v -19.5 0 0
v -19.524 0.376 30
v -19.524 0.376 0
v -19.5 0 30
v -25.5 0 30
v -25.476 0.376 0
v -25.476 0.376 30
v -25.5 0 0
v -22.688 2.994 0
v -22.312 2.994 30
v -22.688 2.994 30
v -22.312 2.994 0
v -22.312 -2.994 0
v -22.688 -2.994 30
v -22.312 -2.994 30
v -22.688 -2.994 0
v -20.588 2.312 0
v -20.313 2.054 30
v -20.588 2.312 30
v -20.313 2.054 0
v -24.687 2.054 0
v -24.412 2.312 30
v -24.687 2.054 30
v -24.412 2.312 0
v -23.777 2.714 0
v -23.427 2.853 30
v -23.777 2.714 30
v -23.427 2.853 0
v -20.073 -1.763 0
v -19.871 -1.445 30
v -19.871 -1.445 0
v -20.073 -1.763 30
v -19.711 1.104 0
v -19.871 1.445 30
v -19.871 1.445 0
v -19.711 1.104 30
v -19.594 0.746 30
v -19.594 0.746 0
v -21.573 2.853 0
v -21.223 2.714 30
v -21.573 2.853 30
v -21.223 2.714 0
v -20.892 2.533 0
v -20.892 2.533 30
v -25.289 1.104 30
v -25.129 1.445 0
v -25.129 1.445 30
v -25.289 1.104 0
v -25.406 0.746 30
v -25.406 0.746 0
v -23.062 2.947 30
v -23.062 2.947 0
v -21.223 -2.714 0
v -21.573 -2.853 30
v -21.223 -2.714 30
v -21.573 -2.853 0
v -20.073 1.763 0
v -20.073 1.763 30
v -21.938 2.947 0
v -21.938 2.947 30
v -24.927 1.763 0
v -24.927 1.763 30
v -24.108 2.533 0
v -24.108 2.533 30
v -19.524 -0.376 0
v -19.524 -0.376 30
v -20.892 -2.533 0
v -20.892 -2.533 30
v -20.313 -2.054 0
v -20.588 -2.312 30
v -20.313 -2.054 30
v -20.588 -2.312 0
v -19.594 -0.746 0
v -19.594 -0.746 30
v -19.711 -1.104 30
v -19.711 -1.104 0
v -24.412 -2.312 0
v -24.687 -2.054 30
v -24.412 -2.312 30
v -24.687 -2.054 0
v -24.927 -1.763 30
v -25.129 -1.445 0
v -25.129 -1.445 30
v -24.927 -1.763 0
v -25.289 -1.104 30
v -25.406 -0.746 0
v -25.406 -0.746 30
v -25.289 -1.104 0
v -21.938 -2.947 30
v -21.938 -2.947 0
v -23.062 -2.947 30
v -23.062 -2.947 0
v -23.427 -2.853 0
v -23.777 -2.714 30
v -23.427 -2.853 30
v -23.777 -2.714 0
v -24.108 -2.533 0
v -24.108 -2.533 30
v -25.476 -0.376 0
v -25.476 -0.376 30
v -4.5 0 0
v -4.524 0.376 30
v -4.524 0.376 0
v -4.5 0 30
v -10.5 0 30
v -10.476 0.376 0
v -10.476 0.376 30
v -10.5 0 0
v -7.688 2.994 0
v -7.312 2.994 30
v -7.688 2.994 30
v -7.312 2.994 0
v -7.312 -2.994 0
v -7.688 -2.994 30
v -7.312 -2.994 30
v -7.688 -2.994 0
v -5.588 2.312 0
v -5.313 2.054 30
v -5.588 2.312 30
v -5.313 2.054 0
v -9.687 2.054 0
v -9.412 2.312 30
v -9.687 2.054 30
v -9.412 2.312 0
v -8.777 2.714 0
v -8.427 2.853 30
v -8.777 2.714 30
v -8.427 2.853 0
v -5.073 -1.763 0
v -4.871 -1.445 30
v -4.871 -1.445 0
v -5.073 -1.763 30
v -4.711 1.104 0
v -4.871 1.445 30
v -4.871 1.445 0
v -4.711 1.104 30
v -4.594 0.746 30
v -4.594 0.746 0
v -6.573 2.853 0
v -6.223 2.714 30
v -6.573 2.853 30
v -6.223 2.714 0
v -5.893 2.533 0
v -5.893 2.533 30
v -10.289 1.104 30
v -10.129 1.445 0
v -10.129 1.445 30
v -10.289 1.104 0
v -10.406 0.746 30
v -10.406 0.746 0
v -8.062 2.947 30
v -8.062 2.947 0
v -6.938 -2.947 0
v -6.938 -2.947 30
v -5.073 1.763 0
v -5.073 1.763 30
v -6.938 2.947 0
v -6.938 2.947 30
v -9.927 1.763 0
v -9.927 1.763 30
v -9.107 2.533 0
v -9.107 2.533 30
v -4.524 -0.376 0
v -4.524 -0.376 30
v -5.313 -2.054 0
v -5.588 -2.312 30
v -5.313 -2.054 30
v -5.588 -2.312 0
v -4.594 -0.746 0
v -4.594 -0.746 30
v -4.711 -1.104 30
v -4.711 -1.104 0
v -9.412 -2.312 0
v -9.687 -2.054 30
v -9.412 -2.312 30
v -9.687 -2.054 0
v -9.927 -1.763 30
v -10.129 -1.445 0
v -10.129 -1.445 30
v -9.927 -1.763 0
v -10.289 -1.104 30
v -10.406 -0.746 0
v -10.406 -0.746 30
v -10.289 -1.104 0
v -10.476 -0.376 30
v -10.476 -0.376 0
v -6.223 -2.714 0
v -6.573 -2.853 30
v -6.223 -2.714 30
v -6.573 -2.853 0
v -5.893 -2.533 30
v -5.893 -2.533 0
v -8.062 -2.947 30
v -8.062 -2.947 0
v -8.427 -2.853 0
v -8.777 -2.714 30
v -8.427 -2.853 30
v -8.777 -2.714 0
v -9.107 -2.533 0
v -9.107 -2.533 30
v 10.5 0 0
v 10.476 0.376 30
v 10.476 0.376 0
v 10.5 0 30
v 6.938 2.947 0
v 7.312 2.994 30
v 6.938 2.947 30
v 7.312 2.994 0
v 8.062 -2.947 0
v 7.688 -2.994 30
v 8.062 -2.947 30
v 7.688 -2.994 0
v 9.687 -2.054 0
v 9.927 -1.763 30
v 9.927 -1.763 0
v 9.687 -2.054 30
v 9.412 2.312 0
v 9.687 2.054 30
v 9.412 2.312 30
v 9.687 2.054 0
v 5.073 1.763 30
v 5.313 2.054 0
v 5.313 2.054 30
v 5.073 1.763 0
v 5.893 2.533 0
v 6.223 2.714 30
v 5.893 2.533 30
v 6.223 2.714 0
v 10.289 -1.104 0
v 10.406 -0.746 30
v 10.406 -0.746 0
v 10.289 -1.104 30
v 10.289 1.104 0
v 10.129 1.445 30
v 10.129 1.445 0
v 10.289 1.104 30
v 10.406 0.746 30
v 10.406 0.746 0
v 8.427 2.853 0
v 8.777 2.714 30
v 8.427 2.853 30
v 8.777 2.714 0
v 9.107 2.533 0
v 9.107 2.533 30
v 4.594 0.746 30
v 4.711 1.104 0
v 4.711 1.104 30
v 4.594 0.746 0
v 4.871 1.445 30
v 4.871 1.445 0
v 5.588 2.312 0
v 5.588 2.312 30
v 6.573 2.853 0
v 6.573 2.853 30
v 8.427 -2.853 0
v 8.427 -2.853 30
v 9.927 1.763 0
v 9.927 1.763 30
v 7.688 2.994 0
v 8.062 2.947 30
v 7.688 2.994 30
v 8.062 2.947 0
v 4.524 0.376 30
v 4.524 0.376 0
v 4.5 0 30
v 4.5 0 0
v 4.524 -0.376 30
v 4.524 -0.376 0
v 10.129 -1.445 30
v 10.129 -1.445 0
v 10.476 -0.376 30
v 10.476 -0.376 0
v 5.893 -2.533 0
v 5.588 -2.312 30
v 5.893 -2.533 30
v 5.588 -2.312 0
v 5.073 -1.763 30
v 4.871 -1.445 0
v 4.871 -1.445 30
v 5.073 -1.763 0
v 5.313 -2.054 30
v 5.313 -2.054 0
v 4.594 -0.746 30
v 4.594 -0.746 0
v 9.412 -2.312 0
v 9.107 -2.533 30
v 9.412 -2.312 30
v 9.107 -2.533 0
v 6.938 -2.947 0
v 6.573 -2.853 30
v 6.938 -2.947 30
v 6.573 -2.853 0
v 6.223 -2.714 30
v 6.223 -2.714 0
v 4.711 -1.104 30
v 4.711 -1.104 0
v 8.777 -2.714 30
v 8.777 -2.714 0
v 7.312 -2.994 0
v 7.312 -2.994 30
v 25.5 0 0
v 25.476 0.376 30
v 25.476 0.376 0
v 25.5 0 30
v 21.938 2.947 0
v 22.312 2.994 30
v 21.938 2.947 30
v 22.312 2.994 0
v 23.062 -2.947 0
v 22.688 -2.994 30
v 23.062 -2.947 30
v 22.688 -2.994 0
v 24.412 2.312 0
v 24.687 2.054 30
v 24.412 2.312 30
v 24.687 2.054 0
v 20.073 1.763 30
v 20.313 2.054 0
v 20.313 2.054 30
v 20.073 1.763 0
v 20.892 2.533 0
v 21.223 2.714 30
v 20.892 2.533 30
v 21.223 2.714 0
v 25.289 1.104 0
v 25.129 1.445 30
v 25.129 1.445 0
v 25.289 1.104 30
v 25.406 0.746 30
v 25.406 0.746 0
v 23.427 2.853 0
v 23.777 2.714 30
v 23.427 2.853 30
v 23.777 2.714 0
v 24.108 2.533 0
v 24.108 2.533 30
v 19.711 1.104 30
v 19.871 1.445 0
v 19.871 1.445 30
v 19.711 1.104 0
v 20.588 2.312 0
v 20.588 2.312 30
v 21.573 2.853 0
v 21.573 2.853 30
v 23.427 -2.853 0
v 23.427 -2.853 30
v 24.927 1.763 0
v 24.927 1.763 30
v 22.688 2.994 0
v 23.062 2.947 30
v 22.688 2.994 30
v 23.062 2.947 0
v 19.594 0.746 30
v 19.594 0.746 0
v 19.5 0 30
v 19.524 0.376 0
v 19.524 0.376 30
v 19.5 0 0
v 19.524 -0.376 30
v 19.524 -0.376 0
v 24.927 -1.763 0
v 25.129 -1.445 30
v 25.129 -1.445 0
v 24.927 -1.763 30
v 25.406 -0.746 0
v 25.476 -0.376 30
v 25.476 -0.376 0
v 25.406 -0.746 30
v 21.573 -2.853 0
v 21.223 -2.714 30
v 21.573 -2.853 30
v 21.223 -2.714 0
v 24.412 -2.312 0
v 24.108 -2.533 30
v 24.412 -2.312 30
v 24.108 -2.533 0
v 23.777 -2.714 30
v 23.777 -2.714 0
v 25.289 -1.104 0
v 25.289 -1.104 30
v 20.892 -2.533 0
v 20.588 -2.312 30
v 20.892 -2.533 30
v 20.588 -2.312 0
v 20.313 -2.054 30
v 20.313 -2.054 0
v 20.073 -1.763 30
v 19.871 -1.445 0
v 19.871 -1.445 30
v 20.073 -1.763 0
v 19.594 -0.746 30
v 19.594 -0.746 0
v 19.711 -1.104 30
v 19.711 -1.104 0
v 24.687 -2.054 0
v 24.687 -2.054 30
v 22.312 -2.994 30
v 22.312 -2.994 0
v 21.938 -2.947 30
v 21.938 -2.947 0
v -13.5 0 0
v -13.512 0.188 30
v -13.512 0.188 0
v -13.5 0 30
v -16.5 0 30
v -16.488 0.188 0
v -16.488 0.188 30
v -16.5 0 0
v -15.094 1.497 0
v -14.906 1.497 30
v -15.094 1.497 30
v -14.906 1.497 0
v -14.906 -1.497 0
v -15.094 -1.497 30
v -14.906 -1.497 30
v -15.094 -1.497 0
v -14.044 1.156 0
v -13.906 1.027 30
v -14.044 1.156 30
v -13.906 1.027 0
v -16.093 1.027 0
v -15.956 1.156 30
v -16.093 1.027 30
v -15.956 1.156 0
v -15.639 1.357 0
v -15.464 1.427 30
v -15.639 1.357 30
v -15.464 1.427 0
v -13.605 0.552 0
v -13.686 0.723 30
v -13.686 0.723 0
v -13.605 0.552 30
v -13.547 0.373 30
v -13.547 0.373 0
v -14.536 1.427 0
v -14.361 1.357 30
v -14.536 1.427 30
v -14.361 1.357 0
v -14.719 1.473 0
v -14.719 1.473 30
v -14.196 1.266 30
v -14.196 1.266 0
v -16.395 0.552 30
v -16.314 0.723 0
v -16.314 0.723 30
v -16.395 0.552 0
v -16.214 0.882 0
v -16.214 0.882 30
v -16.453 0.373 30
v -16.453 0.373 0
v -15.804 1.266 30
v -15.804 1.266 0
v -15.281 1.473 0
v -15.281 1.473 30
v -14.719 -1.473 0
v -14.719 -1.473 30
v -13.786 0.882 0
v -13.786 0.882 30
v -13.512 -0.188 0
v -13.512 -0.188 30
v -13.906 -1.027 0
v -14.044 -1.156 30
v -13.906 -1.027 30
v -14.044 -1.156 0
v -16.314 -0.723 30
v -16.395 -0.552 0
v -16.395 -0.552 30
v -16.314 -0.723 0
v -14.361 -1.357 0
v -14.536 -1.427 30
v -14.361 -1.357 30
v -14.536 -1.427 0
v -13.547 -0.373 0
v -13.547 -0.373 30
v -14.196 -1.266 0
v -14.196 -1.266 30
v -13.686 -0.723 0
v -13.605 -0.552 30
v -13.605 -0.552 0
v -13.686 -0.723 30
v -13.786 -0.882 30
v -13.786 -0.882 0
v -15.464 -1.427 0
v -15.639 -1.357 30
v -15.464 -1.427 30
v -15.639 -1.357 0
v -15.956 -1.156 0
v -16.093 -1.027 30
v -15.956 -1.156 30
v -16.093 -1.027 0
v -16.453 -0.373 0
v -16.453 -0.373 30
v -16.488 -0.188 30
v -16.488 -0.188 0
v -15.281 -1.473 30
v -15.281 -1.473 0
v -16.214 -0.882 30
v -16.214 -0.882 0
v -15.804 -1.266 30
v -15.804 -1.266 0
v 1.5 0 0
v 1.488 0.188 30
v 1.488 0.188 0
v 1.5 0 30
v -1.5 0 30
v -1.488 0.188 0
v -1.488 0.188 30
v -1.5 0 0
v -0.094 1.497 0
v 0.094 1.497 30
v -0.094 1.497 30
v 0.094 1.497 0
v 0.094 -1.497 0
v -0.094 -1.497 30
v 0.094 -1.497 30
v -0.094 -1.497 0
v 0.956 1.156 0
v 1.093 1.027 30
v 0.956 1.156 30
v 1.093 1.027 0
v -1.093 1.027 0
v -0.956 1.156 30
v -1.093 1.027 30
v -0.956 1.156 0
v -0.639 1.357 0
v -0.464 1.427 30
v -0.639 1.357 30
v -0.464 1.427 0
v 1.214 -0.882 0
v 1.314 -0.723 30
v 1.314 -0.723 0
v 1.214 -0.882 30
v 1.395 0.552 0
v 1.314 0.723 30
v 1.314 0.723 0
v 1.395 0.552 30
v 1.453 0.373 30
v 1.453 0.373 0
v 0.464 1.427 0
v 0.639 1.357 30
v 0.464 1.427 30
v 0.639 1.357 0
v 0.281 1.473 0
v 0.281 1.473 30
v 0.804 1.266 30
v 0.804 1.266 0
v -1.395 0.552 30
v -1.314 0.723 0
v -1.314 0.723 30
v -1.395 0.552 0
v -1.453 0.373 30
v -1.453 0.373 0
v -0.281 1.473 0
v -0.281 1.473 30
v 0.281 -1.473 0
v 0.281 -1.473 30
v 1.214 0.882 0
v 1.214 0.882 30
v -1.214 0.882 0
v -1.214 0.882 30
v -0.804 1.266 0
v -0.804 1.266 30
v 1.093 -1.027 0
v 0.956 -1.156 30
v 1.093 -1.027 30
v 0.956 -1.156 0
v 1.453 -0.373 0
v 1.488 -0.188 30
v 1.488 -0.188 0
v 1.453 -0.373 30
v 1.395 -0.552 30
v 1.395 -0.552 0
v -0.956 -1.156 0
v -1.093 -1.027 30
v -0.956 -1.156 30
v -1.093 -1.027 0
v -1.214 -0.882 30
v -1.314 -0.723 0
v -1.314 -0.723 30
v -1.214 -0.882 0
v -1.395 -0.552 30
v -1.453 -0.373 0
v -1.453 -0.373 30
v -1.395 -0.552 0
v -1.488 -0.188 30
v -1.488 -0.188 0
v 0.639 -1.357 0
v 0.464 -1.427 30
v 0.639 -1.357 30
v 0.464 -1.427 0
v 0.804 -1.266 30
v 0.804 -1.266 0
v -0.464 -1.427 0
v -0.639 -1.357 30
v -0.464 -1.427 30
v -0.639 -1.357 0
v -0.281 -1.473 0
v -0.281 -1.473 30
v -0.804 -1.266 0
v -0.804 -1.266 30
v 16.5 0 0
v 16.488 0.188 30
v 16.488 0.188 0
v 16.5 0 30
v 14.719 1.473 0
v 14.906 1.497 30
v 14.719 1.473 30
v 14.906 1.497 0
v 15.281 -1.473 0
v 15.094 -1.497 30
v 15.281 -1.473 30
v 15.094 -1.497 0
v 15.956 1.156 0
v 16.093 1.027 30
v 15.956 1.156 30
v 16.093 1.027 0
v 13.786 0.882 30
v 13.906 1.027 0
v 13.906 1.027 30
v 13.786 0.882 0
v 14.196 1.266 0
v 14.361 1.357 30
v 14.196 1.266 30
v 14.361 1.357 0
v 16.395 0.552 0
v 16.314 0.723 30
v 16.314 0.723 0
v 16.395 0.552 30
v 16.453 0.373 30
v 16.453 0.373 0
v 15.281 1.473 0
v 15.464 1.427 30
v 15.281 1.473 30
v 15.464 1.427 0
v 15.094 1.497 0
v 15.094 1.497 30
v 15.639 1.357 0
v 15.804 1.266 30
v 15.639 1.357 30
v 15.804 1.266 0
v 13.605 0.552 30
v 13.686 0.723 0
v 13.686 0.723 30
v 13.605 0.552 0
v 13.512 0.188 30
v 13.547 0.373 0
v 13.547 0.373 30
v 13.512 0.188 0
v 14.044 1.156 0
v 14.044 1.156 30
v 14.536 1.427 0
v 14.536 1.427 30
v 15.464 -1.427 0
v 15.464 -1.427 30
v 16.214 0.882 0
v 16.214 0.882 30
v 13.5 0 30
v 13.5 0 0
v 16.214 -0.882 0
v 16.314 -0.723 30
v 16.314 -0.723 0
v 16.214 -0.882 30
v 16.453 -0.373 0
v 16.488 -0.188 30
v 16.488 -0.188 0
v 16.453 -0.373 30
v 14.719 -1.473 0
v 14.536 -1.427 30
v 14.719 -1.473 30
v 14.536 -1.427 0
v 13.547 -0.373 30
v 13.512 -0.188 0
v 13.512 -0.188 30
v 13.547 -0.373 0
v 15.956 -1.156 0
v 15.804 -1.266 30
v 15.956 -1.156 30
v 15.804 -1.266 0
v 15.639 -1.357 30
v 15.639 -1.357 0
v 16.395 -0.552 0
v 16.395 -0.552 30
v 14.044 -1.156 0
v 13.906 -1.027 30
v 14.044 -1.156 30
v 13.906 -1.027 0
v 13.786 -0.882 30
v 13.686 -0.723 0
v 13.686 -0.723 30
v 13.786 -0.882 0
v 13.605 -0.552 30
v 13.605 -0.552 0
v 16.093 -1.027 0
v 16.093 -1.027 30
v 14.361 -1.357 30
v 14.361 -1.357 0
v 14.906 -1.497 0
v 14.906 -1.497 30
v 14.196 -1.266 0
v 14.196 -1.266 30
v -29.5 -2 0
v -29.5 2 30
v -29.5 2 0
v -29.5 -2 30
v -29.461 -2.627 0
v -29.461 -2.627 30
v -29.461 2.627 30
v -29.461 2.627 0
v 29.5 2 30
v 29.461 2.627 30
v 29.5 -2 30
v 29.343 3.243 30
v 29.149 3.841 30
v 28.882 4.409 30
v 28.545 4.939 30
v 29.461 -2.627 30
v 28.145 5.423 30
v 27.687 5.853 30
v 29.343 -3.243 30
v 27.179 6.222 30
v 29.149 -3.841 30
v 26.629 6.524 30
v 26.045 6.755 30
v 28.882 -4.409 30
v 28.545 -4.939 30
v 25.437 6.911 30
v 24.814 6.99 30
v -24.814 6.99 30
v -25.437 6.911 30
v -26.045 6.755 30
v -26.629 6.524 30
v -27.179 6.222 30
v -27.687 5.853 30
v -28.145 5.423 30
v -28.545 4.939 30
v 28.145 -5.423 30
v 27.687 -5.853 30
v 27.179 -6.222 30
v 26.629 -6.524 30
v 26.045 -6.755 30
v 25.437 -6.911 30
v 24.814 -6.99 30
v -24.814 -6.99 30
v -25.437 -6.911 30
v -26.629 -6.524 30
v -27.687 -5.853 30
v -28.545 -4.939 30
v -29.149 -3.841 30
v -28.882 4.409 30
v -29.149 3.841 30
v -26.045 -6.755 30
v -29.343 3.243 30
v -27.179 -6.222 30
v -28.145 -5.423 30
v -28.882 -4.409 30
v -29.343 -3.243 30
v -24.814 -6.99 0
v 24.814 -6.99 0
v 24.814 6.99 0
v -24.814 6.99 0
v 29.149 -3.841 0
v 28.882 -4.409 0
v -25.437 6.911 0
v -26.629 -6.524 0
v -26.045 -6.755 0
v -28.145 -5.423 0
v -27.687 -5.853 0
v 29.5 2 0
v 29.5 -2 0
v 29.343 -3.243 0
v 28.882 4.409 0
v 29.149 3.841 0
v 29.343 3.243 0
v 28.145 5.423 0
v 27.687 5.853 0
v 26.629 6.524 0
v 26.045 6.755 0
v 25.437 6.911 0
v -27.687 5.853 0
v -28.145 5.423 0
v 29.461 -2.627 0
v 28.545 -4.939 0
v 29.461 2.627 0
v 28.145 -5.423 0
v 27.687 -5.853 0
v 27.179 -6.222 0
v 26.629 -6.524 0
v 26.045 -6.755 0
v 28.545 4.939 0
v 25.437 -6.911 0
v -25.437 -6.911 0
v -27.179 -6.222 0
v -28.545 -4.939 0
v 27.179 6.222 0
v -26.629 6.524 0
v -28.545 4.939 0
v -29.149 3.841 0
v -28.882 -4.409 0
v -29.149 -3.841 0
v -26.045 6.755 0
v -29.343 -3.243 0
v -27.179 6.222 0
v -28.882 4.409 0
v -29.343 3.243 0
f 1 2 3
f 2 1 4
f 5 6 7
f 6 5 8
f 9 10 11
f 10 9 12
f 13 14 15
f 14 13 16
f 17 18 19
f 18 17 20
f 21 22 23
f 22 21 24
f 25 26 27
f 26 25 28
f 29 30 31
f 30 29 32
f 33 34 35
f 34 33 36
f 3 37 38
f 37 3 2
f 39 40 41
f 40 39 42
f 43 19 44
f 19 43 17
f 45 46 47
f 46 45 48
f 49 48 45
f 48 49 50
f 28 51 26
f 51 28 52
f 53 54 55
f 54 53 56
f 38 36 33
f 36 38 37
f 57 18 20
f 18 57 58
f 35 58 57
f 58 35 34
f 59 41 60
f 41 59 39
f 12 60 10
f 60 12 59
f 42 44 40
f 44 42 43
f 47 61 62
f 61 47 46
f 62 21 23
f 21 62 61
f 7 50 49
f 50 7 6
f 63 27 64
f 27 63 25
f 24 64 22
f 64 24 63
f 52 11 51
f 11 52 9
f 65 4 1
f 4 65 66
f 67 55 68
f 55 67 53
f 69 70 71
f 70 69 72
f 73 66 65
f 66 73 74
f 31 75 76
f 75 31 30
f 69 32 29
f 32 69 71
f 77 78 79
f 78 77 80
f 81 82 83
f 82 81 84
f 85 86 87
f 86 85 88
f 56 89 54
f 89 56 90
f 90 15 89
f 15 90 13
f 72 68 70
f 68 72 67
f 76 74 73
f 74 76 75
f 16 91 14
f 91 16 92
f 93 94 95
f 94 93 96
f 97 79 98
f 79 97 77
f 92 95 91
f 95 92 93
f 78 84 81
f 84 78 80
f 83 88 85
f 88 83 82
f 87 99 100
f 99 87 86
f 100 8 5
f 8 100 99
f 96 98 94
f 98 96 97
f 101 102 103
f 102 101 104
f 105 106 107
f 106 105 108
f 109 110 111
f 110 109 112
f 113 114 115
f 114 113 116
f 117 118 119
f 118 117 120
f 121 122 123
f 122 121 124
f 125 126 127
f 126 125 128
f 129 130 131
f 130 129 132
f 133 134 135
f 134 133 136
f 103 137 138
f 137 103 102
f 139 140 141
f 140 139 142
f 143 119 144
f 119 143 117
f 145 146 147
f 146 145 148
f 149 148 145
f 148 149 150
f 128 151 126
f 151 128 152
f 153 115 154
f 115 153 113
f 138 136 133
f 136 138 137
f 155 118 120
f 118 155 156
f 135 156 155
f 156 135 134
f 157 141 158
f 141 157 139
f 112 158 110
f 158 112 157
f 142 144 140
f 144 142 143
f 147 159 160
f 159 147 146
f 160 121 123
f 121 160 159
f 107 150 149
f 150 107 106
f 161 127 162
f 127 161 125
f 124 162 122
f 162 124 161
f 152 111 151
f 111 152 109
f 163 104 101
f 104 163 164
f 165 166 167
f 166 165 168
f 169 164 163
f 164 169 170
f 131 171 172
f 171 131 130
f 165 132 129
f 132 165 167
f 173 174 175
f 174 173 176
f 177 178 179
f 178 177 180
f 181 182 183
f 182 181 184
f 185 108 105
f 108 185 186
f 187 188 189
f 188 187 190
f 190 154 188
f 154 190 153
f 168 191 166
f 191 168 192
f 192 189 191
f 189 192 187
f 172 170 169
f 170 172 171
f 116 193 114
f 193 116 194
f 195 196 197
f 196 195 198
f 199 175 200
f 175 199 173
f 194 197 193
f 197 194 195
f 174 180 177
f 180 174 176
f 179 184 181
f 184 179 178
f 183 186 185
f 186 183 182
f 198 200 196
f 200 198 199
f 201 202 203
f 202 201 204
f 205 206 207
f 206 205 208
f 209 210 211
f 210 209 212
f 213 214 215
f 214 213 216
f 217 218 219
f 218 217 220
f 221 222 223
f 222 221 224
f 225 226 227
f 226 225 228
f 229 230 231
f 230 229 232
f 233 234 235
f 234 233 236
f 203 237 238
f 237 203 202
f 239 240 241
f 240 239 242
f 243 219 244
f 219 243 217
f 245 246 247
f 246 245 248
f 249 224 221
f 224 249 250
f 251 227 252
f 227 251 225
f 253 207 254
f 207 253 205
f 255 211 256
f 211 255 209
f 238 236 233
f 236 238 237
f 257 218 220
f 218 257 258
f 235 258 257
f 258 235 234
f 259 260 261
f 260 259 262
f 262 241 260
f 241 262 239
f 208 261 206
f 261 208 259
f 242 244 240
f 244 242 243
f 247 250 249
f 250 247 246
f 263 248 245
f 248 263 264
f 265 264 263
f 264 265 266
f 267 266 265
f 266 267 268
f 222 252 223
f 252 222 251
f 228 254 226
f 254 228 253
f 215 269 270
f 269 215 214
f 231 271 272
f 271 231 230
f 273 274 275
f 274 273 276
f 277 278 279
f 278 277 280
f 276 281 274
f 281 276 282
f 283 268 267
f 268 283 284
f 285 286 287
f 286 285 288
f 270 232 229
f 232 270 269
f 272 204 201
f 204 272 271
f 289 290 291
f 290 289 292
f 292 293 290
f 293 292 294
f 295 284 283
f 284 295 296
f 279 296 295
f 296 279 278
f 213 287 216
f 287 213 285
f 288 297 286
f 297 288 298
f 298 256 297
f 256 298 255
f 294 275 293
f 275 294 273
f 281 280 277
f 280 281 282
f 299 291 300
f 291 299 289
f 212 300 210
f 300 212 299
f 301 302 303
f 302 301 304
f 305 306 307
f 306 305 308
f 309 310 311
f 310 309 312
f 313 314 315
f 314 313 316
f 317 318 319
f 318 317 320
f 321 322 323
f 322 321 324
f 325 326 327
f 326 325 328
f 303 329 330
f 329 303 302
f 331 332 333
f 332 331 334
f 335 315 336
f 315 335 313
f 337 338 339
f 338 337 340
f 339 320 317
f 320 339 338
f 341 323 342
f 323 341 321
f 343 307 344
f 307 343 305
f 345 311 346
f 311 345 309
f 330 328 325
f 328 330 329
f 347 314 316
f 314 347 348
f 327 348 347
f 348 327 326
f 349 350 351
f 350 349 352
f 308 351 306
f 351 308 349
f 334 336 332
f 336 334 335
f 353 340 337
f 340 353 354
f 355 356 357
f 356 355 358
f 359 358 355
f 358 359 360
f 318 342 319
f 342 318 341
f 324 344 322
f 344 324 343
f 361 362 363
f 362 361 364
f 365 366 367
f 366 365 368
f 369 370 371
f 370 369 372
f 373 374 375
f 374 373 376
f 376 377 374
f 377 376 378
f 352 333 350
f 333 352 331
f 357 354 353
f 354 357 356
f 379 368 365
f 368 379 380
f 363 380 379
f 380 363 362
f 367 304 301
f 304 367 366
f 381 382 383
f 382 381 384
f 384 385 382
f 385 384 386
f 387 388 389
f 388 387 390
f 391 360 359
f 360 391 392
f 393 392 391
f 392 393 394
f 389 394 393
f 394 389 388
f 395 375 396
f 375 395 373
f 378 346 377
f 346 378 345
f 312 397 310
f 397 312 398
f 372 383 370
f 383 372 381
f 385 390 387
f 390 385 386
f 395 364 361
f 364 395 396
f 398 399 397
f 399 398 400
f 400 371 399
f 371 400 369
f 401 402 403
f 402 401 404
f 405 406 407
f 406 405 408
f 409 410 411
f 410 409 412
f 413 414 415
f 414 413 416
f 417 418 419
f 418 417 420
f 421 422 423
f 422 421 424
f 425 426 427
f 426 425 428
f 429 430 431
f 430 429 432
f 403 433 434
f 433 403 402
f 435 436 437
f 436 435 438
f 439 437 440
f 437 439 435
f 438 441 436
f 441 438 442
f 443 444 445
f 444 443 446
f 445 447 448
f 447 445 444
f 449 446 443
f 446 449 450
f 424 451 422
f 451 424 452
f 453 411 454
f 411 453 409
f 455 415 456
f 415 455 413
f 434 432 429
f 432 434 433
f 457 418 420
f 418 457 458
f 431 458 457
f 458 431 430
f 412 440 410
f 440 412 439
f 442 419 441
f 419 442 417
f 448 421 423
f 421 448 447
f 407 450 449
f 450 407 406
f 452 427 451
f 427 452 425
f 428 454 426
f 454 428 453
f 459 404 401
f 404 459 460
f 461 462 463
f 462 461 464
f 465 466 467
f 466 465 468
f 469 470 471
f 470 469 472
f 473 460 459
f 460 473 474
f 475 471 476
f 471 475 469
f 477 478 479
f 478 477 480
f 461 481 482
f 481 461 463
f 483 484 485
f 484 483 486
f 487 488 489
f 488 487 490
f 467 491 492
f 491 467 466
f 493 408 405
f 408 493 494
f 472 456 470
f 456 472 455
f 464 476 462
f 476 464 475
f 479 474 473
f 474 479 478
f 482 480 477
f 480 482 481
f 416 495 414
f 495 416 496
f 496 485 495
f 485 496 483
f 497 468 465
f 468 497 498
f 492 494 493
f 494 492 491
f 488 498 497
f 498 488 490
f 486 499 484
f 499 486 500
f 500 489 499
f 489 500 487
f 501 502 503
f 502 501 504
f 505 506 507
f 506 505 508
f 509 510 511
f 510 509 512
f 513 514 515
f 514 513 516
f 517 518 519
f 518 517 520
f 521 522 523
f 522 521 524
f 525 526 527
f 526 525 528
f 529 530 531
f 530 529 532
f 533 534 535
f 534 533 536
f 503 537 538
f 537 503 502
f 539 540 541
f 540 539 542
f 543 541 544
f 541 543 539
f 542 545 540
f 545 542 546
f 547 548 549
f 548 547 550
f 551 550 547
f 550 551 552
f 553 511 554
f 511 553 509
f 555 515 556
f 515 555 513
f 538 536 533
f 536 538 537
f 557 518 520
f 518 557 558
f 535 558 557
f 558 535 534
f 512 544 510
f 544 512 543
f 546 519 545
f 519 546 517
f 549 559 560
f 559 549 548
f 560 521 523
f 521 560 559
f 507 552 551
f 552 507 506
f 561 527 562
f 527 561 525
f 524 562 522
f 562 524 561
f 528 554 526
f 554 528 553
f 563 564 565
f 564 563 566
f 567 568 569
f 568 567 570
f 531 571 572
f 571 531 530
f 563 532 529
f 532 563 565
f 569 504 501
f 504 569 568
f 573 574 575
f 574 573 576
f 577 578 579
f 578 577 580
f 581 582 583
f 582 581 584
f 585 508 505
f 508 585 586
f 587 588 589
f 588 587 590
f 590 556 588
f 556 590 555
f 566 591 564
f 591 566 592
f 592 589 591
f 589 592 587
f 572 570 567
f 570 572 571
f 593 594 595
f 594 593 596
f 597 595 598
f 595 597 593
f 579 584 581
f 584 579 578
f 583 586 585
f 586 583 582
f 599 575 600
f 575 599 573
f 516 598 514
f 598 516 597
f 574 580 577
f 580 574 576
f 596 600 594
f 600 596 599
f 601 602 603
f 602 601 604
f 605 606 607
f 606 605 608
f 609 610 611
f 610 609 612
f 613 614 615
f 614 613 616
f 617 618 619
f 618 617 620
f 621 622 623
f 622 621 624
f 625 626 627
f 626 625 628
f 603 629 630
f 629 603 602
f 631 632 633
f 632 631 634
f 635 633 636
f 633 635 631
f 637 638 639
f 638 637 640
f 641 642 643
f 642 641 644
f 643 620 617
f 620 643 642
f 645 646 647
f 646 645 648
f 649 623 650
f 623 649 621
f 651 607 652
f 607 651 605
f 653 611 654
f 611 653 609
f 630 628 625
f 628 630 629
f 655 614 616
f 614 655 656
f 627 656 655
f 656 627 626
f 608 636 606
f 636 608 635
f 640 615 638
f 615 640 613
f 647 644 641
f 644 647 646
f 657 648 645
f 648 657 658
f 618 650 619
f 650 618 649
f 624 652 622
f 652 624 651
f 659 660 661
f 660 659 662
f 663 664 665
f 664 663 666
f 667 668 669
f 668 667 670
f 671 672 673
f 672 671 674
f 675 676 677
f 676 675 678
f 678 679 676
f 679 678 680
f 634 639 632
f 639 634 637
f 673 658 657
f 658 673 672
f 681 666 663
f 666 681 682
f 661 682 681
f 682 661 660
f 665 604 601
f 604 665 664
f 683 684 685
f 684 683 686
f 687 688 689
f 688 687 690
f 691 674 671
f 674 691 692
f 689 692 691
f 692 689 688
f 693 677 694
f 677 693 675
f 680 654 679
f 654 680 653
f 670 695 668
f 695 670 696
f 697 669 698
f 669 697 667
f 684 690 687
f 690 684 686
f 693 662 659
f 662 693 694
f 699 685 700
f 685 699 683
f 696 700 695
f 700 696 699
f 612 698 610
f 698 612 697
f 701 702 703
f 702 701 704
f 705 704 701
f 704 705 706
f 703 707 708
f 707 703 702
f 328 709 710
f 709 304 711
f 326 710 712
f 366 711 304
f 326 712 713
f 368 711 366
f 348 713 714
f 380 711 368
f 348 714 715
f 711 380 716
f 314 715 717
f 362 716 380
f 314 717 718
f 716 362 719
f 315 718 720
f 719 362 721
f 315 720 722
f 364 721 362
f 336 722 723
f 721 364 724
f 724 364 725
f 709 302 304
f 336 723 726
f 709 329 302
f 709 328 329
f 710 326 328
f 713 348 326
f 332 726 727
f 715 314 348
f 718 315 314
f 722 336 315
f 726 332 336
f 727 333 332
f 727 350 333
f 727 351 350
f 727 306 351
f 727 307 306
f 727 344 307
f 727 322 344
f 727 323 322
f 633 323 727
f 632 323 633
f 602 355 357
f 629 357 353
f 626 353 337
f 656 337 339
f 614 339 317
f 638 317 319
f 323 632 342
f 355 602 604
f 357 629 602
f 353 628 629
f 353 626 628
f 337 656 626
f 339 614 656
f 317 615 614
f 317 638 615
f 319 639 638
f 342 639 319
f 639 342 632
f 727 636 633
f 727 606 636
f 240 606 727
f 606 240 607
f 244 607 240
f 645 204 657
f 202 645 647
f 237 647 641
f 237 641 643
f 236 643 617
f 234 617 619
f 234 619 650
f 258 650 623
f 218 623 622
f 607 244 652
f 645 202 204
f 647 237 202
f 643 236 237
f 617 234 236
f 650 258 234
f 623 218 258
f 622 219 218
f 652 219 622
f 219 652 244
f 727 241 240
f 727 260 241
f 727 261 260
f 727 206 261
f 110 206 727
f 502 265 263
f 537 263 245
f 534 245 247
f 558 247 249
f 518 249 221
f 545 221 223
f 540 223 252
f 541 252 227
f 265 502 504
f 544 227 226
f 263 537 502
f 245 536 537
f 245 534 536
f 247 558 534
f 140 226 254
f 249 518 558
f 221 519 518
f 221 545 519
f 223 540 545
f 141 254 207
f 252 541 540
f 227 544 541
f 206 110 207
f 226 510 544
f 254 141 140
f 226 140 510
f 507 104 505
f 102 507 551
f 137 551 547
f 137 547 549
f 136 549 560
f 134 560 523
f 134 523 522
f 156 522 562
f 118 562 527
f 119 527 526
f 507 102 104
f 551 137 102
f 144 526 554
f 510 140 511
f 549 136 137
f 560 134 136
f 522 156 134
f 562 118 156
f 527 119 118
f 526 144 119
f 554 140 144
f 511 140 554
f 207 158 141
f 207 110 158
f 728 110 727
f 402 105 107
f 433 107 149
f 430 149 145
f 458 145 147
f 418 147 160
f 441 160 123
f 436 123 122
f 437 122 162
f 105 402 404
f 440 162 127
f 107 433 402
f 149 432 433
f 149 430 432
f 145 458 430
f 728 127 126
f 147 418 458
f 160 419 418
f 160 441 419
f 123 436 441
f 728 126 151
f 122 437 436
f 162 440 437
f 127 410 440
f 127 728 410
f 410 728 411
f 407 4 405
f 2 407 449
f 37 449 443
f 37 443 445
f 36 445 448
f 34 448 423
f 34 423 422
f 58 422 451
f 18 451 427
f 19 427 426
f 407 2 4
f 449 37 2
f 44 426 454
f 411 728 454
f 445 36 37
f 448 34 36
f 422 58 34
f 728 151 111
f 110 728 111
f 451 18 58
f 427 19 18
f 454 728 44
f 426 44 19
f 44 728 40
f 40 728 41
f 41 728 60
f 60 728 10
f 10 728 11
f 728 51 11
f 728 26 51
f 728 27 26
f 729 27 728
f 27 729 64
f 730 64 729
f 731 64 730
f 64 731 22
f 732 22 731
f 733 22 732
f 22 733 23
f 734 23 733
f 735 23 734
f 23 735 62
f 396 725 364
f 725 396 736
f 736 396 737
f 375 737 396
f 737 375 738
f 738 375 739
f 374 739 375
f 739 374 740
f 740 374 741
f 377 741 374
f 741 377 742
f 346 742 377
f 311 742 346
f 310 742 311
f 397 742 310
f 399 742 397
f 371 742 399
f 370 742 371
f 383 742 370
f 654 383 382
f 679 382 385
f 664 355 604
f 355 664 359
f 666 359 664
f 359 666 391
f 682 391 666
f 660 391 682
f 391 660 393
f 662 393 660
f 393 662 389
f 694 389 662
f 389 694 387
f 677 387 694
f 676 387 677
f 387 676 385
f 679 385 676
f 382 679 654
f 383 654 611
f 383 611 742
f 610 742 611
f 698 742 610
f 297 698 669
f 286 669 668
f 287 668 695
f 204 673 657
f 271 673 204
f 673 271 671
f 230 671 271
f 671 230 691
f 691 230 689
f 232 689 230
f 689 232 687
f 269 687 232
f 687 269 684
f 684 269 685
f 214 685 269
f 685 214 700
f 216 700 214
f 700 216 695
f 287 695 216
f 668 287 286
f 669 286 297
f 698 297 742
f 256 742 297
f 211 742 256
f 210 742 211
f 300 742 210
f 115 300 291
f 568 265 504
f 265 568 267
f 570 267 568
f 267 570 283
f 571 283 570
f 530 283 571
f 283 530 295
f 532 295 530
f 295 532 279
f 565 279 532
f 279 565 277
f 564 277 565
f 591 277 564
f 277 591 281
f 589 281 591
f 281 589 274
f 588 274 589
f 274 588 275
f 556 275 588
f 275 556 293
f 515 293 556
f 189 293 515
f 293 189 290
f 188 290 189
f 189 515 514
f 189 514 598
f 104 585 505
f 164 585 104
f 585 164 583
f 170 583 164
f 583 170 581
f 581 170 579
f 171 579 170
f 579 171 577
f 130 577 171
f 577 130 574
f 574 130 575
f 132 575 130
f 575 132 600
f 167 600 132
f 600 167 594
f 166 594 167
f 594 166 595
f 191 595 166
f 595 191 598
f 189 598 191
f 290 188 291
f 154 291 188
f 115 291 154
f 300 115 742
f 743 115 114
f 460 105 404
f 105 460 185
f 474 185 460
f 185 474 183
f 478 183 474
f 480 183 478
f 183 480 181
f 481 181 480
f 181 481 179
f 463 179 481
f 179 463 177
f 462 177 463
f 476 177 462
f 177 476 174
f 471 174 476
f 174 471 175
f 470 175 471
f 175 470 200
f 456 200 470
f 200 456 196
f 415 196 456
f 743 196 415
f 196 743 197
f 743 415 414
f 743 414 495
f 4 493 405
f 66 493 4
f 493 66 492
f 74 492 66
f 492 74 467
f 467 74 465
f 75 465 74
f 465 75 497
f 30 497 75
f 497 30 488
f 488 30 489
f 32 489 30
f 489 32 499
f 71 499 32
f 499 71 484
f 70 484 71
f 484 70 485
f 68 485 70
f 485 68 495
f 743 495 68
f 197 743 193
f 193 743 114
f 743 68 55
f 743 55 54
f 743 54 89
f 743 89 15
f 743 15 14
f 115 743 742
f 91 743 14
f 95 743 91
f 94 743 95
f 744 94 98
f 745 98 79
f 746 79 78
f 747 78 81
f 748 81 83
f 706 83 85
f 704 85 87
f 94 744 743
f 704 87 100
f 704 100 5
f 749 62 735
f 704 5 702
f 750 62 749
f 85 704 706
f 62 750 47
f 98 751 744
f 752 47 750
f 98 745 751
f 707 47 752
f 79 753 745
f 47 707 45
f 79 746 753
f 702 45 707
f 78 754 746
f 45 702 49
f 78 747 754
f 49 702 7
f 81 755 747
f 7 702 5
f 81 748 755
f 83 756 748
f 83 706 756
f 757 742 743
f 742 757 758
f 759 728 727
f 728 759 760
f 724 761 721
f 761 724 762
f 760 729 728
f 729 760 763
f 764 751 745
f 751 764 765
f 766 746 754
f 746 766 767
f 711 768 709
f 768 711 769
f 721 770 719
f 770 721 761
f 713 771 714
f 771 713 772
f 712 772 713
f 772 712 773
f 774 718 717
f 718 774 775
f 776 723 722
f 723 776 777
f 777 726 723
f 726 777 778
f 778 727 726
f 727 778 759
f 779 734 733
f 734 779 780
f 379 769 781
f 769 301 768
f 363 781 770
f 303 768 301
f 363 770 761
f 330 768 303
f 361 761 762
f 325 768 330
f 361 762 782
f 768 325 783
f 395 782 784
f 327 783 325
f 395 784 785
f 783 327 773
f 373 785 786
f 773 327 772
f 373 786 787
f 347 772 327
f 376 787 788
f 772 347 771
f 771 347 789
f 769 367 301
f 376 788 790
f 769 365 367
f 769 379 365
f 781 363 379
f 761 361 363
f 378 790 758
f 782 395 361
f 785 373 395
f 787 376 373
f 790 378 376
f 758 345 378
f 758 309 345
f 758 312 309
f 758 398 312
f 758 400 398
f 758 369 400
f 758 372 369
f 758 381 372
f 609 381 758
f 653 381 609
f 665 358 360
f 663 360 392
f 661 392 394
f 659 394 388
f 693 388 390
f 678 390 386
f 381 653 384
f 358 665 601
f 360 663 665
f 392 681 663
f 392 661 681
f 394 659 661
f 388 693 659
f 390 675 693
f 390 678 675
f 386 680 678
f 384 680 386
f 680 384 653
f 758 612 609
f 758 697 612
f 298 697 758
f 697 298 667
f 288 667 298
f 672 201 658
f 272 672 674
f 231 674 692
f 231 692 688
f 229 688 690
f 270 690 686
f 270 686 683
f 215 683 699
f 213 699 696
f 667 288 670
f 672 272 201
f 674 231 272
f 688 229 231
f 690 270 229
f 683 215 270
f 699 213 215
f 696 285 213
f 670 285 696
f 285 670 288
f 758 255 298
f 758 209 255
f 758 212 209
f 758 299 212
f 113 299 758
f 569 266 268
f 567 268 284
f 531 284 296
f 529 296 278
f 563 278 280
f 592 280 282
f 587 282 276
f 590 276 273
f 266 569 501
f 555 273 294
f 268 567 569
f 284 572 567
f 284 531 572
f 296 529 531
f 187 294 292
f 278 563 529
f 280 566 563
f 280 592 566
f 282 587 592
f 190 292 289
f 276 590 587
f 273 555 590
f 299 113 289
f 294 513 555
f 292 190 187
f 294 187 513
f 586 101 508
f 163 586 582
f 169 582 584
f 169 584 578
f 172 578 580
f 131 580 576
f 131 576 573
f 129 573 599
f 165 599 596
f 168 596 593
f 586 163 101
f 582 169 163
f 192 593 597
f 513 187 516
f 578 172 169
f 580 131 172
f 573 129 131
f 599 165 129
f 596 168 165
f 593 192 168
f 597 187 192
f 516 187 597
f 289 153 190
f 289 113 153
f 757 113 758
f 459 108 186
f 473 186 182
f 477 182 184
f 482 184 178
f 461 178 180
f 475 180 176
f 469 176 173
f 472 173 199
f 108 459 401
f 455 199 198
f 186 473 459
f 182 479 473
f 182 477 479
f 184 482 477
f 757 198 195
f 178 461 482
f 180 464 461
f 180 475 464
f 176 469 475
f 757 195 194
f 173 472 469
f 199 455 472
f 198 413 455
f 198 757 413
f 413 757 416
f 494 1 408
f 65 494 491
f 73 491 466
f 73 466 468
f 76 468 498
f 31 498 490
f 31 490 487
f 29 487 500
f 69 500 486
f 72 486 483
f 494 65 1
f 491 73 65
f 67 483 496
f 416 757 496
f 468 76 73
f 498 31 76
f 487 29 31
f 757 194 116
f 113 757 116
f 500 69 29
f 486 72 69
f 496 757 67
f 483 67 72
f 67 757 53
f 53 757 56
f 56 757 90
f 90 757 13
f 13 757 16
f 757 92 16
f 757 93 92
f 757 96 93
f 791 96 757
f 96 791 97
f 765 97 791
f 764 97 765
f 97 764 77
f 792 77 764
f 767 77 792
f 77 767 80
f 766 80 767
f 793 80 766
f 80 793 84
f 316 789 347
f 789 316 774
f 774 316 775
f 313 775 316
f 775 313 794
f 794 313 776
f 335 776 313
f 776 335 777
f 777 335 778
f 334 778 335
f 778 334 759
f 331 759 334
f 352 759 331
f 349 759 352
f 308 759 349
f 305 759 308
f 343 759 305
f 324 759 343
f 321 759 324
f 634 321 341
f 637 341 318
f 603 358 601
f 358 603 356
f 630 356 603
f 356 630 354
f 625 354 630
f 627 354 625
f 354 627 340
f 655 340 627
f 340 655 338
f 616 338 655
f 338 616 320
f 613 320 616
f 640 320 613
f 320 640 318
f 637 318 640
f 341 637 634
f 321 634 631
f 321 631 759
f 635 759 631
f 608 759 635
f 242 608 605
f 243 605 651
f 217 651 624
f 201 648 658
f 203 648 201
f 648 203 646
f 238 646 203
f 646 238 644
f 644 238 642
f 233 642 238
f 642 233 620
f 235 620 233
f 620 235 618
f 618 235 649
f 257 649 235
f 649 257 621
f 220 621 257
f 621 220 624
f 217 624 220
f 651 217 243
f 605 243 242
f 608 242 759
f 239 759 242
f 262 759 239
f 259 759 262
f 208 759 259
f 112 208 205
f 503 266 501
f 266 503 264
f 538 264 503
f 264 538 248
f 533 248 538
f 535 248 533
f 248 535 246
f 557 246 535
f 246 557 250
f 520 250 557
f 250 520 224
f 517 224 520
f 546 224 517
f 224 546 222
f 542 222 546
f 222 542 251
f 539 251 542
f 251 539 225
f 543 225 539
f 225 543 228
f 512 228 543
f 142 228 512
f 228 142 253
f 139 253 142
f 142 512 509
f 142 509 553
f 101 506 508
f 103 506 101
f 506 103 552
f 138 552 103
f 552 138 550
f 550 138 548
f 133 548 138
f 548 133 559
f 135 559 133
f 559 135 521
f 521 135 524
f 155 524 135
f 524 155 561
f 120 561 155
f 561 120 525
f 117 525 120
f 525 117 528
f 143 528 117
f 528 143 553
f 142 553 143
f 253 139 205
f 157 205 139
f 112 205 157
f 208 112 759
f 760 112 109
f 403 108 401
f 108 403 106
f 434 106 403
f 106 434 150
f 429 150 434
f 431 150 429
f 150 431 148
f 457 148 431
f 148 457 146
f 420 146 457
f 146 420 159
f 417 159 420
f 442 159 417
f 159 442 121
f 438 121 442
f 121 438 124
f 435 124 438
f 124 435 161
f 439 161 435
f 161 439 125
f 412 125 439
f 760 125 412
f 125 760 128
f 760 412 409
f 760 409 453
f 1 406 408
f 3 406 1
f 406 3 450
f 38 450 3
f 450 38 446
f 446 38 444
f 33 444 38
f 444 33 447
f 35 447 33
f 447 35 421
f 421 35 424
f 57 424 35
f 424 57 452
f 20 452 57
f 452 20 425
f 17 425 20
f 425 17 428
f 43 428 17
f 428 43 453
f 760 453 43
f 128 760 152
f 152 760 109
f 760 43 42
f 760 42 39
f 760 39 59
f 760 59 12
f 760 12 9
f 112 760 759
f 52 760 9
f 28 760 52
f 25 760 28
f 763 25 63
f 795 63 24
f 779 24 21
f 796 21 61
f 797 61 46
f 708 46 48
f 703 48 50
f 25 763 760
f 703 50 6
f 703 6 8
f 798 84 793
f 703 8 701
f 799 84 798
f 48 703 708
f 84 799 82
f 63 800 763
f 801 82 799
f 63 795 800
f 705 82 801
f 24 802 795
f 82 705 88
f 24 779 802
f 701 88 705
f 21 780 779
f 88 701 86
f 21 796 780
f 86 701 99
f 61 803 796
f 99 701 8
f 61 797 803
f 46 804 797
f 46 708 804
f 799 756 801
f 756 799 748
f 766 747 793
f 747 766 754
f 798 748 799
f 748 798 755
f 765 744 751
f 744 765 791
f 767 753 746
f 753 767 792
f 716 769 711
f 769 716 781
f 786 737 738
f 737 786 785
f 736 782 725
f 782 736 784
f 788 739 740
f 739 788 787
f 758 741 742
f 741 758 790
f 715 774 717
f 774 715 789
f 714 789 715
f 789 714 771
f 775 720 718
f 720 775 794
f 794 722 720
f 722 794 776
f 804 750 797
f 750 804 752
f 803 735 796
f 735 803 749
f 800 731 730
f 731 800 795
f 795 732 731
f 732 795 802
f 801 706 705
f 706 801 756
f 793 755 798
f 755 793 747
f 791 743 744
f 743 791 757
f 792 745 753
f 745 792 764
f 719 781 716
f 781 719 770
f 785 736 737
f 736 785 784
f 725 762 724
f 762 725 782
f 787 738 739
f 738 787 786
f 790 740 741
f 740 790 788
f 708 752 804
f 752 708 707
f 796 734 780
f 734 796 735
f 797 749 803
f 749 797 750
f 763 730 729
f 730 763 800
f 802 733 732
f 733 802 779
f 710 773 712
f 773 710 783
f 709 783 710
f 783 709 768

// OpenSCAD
$fn = 50;


difference() {
	union() {
		hull() {
			translate(v = [-24.5000000000, 2.0000000000, 0]) {
				cylinder(h = 30, r = 5);
			}
			translate(v = [24.5000000000, 2.0000000000, 0]) {
				cylinder(h = 30, r = 5);
			}
			translate(v = [-24.5000000000, -2.0000000000, 0]) {
				cylinder(h = 30, r = 5);
			}
			translate(v = [24.5000000000, -2.0000000000, 0]) {
				cylinder(h = 30, r = 5);
			}
		}
	}
	union() {
		translate(v = [-22.5000000000, 0.0000000000, -100.0000000000]) {
			cylinder(h = 200, r = 3.0000000000);
		}
		translate(v = [-7.5000000000, 0.0000000000, -100.0000000000]) {
			cylinder(h = 200, r = 3.0000000000);
		}
		translate(v = [7.5000000000, 0.0000000000, -100.0000000000]) {
			cylinder(h = 200, r = 3.0000000000);
		}
		translate(v = [22.5000000000, 0.0000000000, -100.0000000000]) {
			cylinder(h = 200, r = 3.0000000000);
		}
		translate(v = [-22.5000000000, 0.0000000000, 0]) {
			cylinder(h = 30, r = 1.5000000000);
		}
		translate(v = [-15.0000000000, 0.0000000000, 0]) {
			cylinder(h = 30, r = 1.5000000000);
		}
		translate(v = [-7.5000000000, 0.0000000000, 0]) {
			cylinder(h = 30, r = 1.5000000000);
		}
		cylinder(h = 30, r = 1.5000000000);
		translate(v = [7.5000000000, 0.0000000000, 0]) {
			cylinder(h = 30, r = 1.5000000000);
		}
		translate(v = [15.0000000000, 0.0000000000, 0]) {
			cylinder(h = 30, r = 1.5000000000);
		}
		translate(v = [22.5000000000, 0.0000000000, 0]) {
			cylinder(h = 30, r = 1.5000000000);
		}
		translate(v = [-22.5000000000, 0.0000000000, 0]) {
			cylinder(h = 30, r = 1.5000000000);
		}
		translate(v = [-15.0000000000, 0.0000000000, 0]) {
			cylinder(h = 30, r = 1.5000000000);
		}
		translate(v = [-7.5000000000, 0.0000000000, 0]) {
			cylinder(h = 30, r = 1.5000000000);
		}
		cylinder(h = 30, r = 1.5000000000);
		translate(v = [7.5000000000, 0.0000000000, 0]) {
			cylinder(h = 30, r = 1.5000000000);
		}
		translate(v = [15.0000000000, 0.0000000000, 0]) {
			cylinder(h = 30, r = 1.5000000000);
		}
		translate(v = [22.5000000000, 0.0000000000, 0]) {
			cylinder(h = 30, r = 1.5000000000);
		}
		translate(v = [-22.5000000000, 0.0000000000, 0]) {
			cylinder(h = 30, r = 1.5000000000);
		}
		translate(v = [-15.0000000000, 0.0000000000, 0]) {
			cylinder(h = 30, r = 1.5000000000);
		}
		translate(v = [-7.5000000000, 0.0000000000, 0]) {
			cylinder(h = 30, r = 1.5000000000);
		}
		cylinder(h = 30, r = 1.5000000000);
		translate(v = [7.5000000000, 0.0000000000, 0]) {
			cylinder(h = 30, r = 1.5000000000);
		}
		translate(v = [15.0000000000, 0.0000000000, 0]) {
			cylinder(h = 30, r = 1.5000000000);
		}
		translate(v = [22.5000000000, 0.0000000000, 0]) {
			cylinder(h = 30, r = 1.5000000000);
		}
	}
}
